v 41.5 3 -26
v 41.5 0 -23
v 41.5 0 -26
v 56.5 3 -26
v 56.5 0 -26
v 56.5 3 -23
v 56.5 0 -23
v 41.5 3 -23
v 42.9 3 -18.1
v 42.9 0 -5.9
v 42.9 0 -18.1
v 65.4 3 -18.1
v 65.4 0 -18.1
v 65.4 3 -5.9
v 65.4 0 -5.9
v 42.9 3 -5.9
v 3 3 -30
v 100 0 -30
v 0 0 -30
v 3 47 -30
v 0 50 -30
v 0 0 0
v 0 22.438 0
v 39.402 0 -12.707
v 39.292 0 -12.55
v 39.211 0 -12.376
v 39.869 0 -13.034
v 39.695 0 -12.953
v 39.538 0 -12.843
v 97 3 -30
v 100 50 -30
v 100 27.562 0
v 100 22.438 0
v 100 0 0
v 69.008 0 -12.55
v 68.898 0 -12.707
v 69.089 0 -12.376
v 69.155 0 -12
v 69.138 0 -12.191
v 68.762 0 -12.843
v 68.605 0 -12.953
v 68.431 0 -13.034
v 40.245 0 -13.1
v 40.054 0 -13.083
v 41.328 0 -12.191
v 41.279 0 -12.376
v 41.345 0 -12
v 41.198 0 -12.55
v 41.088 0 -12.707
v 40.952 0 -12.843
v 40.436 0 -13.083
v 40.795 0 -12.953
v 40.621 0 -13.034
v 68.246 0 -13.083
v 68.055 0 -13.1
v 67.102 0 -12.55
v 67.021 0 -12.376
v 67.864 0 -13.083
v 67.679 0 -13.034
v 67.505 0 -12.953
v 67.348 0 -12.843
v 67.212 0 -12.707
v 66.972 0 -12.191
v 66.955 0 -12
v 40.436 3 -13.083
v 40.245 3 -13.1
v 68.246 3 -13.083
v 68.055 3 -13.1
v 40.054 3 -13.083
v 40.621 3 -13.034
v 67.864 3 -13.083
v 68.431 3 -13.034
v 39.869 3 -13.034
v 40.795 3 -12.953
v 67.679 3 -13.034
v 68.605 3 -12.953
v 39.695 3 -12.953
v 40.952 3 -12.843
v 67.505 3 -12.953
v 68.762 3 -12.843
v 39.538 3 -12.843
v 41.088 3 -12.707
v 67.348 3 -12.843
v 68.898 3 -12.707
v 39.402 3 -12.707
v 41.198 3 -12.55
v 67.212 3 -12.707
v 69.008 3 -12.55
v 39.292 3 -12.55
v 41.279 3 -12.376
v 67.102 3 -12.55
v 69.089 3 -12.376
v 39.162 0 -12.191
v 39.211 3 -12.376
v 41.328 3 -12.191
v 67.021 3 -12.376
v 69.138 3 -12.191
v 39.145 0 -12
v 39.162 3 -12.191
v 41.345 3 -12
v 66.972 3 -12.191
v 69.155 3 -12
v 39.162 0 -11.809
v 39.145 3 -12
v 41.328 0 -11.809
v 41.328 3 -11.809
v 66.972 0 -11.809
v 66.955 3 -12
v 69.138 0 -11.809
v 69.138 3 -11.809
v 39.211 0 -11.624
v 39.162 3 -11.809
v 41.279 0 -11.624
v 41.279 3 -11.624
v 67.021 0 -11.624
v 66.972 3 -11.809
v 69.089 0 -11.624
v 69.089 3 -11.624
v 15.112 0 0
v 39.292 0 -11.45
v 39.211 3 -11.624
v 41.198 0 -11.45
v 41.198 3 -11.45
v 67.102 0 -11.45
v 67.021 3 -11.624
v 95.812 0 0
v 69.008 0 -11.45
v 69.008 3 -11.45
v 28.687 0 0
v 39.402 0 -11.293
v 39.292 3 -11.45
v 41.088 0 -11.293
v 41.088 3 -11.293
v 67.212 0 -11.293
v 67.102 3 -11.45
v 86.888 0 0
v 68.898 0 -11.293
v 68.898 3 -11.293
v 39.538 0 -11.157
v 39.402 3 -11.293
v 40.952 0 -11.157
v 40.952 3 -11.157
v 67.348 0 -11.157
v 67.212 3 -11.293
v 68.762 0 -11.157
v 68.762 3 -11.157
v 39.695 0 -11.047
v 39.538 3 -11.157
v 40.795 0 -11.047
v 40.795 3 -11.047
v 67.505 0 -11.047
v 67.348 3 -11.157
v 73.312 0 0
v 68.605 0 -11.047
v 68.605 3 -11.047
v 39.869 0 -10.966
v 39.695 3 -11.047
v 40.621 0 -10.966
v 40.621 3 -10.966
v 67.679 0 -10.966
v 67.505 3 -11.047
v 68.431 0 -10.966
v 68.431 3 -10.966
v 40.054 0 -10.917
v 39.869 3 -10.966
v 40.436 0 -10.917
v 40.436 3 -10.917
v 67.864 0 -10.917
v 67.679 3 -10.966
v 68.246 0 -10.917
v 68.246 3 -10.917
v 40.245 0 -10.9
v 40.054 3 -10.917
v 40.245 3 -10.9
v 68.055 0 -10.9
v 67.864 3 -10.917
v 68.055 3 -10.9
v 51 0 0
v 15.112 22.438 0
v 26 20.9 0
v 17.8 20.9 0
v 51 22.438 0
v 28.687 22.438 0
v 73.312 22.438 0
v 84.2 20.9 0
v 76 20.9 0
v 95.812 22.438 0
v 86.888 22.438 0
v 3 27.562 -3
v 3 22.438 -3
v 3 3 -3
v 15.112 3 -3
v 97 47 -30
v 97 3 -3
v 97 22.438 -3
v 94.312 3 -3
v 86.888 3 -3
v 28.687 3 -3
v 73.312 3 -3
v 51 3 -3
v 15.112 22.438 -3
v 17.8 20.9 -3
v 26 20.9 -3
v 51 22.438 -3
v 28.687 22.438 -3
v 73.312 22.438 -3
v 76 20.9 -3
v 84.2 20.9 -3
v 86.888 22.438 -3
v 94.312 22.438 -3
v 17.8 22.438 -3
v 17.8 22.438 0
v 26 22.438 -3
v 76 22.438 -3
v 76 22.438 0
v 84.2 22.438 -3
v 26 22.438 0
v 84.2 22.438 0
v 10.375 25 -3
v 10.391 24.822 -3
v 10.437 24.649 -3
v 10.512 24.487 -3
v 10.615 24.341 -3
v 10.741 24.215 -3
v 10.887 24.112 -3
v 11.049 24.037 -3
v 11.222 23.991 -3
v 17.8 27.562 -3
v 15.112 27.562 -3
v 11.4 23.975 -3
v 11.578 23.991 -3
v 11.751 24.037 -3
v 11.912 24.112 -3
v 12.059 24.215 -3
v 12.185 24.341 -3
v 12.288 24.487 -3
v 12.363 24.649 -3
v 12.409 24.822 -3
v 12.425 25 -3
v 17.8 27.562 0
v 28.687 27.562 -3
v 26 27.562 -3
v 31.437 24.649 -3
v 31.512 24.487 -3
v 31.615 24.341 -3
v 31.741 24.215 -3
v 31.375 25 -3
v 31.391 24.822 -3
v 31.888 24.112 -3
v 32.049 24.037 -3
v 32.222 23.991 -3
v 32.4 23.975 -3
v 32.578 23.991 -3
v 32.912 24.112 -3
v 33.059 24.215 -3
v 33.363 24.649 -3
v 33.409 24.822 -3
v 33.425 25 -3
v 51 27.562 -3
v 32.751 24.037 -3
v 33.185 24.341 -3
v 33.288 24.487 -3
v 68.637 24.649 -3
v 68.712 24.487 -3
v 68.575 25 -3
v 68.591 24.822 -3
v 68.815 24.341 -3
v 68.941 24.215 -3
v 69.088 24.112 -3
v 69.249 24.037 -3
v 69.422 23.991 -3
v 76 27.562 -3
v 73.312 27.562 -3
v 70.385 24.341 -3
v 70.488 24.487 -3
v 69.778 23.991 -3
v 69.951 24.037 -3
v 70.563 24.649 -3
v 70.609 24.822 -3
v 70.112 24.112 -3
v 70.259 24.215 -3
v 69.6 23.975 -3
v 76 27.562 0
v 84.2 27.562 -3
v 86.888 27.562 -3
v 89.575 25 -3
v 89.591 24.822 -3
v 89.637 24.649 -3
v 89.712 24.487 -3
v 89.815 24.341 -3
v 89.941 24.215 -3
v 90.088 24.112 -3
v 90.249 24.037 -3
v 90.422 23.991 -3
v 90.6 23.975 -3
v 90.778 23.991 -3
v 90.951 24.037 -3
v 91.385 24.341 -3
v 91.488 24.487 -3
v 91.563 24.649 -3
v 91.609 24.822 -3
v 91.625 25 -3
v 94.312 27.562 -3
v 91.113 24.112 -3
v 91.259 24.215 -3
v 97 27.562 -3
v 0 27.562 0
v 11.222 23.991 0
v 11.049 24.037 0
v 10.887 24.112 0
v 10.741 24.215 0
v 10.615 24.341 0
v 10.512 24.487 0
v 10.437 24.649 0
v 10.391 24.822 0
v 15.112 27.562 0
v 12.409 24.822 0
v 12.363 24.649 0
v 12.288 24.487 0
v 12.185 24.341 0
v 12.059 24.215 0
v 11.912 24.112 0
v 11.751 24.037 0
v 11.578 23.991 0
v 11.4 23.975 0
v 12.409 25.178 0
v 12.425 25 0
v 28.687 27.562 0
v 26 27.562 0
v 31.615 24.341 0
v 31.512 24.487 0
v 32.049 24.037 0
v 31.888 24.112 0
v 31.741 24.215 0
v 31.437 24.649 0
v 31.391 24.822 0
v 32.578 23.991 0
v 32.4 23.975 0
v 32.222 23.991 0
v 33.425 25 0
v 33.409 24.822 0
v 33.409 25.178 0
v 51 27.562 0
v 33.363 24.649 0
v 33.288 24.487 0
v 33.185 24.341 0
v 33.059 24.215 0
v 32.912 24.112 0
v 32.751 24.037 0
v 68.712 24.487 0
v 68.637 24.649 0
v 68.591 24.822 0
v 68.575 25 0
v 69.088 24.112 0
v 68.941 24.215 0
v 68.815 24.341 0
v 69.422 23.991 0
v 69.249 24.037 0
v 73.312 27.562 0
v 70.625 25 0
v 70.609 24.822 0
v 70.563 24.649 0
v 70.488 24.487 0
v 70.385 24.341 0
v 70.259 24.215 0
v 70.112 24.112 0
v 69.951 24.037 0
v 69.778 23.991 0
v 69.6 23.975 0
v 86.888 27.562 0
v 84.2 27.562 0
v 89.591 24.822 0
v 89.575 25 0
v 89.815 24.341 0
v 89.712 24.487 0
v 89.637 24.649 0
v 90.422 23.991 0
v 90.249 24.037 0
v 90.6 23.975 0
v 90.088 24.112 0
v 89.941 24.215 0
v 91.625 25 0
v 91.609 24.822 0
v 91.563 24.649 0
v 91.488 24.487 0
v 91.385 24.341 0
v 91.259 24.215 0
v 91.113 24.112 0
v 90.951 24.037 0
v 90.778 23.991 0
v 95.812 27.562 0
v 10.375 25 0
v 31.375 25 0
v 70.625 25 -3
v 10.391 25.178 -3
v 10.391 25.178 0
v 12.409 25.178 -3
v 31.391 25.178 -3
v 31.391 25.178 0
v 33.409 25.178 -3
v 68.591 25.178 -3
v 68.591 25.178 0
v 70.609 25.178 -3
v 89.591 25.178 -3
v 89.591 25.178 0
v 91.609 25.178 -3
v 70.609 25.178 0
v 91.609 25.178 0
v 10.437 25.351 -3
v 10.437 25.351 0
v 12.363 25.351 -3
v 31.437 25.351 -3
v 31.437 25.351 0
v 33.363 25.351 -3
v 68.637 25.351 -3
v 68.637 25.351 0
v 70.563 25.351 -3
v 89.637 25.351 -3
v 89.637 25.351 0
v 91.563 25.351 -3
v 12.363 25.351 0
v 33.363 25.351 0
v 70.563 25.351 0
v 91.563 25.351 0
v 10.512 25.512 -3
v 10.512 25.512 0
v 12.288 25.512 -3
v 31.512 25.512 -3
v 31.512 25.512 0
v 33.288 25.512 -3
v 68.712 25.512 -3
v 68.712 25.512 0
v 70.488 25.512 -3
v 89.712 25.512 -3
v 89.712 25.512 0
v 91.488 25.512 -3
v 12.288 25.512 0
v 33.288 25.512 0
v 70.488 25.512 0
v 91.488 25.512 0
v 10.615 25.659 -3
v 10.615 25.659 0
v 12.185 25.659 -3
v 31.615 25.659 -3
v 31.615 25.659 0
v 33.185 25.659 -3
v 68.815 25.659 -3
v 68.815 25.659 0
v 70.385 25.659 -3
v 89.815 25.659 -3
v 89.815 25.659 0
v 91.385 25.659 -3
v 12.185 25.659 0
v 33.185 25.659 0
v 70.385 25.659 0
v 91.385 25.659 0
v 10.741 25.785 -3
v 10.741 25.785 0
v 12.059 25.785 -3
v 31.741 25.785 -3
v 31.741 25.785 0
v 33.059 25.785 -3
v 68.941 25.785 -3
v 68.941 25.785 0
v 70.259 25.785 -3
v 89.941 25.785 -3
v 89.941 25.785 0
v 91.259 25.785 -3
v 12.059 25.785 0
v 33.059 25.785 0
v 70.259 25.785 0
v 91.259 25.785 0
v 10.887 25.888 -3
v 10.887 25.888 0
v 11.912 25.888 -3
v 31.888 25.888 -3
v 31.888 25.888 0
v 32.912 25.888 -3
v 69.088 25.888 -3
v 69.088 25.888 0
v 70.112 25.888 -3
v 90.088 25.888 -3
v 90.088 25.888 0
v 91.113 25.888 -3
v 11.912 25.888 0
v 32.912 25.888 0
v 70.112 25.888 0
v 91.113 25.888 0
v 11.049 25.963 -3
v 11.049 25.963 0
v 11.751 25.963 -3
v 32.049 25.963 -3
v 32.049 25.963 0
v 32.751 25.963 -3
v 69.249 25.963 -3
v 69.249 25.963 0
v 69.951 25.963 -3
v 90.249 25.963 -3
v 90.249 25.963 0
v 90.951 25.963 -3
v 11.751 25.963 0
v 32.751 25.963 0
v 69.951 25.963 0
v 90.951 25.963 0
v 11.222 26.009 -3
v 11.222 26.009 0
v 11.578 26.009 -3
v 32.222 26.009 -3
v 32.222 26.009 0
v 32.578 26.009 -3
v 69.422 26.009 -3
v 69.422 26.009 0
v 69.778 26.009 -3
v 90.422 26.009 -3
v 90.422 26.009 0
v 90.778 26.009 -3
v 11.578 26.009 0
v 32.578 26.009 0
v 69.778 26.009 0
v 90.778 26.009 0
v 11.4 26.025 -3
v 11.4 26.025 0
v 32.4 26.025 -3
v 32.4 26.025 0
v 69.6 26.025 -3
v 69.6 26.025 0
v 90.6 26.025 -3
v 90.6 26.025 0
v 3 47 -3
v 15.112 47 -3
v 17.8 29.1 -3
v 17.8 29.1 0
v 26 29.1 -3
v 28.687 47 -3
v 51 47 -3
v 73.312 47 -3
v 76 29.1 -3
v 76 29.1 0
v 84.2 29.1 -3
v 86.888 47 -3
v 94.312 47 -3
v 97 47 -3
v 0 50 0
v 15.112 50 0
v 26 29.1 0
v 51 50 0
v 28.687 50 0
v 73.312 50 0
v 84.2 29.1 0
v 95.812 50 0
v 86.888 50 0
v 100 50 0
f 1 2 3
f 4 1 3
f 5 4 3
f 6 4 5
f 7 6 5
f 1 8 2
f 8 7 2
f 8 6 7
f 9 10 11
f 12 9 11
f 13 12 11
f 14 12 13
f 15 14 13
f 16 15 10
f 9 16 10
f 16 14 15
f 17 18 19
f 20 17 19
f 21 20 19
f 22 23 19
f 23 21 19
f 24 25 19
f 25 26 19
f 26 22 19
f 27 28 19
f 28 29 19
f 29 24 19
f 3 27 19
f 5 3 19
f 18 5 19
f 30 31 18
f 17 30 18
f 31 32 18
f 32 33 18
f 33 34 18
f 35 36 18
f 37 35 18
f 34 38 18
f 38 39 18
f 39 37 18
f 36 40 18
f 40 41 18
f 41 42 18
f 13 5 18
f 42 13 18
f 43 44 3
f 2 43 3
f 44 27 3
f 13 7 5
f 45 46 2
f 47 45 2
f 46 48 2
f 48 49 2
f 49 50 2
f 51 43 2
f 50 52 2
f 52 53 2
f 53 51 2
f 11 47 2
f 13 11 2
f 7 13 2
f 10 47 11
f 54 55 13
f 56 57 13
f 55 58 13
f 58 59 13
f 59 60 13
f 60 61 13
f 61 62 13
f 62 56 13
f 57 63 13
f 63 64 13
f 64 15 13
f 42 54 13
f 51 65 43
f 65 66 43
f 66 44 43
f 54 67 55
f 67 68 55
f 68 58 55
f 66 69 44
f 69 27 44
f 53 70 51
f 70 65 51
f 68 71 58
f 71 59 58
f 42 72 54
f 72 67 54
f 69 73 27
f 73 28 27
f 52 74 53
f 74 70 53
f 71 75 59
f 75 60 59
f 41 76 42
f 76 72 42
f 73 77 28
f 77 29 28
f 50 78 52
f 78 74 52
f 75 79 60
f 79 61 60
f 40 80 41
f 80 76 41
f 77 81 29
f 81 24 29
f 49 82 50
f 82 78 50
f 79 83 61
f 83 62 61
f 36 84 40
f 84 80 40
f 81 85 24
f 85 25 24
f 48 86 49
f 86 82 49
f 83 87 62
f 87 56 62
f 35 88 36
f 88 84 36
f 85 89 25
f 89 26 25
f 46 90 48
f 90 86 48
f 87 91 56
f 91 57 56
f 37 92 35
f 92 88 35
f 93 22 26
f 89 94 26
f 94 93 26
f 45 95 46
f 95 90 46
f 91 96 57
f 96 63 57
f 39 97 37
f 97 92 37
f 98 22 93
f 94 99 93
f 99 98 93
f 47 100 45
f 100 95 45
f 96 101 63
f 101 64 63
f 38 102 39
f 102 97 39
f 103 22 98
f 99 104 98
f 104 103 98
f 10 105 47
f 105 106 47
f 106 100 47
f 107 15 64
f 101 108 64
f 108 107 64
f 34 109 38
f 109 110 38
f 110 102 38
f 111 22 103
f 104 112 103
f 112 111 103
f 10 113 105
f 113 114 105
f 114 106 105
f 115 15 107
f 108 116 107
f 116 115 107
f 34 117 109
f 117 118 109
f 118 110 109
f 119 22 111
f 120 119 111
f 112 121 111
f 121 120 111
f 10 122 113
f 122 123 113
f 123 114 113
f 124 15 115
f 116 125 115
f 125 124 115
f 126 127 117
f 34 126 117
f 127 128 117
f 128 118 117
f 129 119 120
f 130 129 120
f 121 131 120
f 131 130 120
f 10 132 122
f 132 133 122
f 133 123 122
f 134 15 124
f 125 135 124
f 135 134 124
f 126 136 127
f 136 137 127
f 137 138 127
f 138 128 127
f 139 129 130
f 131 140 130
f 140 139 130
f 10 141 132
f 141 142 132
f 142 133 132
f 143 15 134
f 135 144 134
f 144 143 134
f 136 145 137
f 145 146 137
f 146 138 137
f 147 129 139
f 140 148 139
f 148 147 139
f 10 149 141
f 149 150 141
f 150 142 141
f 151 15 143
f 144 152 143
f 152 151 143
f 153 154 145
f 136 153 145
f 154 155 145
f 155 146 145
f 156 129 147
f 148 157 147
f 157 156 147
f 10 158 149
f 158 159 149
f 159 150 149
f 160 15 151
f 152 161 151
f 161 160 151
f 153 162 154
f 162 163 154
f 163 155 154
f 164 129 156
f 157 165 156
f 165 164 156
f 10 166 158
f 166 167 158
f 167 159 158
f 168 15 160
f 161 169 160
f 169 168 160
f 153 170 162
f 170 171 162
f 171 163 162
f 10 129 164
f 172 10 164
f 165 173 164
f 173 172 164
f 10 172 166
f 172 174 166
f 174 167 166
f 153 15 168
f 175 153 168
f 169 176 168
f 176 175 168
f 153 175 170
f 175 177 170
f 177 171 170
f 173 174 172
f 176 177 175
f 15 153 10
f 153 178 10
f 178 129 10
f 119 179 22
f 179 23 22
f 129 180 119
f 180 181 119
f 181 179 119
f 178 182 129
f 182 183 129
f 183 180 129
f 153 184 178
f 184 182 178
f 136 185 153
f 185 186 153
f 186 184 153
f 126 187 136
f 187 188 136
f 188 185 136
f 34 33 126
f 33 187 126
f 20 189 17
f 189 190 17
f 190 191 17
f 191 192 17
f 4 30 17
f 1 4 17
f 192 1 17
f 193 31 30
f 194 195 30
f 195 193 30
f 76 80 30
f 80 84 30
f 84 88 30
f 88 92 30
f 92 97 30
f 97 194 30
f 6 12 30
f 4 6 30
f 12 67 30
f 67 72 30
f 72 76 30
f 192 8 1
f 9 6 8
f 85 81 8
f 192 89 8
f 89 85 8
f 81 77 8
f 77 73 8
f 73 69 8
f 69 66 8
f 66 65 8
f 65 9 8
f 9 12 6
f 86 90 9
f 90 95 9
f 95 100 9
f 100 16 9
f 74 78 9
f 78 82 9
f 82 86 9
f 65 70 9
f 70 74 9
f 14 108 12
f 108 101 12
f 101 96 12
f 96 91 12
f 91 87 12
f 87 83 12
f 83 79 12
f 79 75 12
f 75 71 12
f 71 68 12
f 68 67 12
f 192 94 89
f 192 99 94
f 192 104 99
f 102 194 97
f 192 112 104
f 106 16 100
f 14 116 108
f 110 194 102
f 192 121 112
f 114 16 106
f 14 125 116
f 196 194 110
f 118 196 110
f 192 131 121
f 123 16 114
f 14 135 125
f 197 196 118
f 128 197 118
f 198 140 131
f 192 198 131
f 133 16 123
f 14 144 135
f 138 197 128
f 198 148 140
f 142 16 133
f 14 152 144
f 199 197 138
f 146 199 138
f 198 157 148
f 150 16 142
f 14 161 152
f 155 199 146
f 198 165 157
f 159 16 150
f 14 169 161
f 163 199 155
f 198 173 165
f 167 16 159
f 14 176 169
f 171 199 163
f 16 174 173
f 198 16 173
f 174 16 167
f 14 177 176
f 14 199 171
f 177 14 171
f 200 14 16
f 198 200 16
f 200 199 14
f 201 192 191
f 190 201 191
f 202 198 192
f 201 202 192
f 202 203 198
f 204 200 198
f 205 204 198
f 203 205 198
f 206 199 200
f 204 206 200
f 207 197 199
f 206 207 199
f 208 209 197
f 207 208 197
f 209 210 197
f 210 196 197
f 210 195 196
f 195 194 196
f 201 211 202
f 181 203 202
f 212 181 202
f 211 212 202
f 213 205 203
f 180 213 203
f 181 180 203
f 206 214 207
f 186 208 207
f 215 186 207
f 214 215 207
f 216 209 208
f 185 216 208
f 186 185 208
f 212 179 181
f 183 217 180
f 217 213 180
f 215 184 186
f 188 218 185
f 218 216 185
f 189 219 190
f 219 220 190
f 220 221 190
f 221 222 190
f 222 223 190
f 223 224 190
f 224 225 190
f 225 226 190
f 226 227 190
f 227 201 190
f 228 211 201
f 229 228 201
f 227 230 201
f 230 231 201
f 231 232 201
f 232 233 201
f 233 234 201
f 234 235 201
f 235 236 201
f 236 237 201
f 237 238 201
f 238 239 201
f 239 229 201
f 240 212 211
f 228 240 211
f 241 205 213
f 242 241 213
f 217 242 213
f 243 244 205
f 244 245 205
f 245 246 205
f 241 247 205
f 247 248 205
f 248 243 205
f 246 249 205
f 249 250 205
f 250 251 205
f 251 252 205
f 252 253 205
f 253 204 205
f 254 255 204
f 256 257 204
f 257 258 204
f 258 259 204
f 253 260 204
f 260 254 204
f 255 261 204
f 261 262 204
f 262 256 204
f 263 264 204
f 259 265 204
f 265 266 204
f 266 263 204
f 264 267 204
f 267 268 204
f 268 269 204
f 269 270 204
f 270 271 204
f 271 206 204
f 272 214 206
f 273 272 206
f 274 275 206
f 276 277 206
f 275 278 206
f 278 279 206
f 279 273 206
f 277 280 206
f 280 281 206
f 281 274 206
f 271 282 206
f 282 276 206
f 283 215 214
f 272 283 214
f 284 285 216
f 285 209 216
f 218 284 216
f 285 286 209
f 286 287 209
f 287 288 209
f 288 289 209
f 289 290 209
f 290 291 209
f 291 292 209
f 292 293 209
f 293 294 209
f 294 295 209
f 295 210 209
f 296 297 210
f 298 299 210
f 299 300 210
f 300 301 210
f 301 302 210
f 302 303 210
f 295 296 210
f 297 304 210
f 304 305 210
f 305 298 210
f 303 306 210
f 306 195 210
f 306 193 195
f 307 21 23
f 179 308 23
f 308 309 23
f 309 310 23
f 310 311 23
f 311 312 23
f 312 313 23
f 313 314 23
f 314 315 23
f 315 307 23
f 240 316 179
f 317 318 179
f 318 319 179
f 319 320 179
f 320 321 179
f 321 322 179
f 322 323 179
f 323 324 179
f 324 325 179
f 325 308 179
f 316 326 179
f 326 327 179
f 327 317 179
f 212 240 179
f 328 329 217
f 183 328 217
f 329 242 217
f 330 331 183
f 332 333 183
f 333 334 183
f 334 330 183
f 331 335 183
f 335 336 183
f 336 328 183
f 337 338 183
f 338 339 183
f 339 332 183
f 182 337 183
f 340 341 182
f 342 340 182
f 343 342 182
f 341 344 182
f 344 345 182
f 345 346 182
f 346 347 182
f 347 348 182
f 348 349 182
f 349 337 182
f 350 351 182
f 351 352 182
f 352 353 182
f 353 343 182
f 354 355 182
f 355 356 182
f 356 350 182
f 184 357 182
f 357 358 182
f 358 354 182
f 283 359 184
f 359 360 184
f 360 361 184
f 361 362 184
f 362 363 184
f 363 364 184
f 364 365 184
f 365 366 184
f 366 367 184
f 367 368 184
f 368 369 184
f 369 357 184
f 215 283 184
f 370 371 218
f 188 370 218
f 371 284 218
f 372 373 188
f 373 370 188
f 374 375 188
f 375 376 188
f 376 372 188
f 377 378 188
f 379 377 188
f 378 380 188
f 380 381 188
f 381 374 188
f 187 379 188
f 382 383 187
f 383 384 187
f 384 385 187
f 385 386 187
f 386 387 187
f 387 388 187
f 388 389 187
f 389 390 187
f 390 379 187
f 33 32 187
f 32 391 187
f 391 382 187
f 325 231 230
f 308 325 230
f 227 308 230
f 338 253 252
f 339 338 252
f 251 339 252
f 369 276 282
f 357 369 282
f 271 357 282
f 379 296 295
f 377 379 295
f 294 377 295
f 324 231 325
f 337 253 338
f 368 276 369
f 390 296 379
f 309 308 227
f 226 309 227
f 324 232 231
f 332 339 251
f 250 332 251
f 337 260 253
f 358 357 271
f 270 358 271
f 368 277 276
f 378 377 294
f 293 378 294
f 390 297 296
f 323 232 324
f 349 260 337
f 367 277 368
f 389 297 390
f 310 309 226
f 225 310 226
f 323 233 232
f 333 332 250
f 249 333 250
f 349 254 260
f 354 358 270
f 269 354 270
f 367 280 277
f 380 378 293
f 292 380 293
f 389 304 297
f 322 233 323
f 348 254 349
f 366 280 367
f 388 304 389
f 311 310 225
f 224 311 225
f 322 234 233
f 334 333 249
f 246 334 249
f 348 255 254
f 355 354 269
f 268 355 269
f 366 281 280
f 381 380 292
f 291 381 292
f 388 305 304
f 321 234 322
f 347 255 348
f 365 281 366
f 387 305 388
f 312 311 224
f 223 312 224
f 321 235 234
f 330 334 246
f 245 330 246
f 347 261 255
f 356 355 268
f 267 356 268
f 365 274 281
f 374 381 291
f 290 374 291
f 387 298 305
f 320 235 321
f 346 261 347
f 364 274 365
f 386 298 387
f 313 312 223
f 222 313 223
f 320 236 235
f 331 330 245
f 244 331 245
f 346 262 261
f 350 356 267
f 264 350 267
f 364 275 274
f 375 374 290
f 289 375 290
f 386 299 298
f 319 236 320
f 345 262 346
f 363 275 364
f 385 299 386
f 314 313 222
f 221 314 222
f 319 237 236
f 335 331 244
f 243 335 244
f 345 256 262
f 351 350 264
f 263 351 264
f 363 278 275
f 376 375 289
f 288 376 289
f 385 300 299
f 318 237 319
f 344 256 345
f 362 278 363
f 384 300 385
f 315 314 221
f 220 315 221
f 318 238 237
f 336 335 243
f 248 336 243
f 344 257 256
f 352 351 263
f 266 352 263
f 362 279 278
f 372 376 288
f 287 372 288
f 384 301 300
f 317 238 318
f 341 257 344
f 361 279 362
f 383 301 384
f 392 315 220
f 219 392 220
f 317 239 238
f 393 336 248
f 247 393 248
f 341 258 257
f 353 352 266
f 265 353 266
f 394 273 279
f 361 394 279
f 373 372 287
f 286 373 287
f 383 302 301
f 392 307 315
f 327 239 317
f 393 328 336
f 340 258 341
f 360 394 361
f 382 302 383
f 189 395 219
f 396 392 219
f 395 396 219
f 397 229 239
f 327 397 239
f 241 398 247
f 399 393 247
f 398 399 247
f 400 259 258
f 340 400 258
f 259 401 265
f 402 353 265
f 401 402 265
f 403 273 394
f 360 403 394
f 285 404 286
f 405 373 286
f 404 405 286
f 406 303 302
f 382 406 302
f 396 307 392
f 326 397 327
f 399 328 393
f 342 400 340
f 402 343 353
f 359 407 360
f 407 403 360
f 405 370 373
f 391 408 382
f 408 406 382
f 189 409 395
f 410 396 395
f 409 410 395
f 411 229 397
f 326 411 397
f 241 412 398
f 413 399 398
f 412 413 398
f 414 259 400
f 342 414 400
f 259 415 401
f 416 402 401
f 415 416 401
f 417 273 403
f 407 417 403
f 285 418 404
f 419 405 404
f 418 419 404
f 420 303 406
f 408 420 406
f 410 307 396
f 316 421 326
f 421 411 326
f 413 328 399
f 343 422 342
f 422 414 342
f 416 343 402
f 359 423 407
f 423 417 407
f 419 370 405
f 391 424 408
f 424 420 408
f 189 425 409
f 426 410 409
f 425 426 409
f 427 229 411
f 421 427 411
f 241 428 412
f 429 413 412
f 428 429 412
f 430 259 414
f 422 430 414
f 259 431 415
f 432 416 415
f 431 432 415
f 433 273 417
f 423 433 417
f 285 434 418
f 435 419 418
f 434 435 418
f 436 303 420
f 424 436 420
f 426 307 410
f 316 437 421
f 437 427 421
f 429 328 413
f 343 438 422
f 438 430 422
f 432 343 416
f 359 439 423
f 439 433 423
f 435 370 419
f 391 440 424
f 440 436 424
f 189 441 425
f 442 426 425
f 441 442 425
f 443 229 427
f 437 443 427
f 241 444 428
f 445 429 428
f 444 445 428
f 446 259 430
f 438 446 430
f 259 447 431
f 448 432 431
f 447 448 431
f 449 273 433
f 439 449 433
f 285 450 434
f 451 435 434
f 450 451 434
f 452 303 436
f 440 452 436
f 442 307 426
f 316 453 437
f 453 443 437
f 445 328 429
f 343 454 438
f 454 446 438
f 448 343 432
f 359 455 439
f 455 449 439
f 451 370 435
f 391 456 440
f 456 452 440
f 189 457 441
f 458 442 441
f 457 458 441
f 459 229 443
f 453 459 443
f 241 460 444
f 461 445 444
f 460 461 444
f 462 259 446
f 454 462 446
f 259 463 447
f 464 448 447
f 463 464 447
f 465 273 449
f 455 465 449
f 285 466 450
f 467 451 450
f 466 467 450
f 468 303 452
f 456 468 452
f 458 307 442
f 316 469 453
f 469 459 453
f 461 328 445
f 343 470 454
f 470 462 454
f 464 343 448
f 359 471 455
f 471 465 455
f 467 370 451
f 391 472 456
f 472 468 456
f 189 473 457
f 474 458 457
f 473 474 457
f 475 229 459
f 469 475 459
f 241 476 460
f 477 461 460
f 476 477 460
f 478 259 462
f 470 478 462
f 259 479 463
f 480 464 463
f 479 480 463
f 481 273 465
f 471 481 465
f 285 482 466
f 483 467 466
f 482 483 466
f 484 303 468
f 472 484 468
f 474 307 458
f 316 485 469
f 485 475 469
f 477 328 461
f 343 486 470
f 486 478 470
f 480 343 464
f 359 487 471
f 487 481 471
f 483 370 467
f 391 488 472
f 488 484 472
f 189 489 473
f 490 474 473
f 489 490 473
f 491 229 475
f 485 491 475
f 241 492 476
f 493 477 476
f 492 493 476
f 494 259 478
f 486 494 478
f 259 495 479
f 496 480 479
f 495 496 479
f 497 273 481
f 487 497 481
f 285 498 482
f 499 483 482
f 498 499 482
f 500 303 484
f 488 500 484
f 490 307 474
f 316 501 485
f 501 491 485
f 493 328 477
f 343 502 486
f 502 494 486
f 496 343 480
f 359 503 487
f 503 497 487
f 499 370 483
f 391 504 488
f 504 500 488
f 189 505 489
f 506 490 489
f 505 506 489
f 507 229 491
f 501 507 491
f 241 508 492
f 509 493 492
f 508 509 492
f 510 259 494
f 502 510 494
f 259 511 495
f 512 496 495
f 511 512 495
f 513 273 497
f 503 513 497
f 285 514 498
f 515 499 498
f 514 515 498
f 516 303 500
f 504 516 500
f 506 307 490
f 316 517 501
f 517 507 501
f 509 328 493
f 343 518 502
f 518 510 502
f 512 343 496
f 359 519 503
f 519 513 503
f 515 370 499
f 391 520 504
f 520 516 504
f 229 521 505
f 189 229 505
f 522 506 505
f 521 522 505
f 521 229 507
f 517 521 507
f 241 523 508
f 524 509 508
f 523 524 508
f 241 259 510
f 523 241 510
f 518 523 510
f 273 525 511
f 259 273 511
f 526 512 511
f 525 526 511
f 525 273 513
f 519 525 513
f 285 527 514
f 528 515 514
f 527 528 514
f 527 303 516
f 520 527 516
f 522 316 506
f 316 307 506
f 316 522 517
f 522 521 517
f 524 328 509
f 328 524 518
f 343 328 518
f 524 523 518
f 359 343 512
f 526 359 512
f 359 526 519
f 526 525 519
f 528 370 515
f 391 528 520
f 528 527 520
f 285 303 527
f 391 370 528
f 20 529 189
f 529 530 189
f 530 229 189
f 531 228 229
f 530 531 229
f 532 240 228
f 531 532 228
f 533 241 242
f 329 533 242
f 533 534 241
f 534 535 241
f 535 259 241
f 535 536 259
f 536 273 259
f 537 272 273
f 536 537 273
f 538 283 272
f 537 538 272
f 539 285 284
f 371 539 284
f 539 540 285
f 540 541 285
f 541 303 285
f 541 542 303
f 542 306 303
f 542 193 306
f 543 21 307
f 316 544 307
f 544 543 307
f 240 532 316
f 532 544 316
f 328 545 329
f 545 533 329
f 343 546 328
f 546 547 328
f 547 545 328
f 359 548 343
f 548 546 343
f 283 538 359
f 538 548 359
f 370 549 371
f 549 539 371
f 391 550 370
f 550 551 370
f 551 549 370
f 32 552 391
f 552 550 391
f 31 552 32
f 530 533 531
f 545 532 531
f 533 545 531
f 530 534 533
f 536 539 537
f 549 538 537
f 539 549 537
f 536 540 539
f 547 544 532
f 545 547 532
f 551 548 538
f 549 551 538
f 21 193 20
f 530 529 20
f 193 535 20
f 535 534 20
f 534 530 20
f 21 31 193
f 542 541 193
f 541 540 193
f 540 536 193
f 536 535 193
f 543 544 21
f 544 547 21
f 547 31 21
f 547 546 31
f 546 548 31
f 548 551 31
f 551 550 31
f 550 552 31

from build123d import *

# Parameters (mm, degrees)
SKETCH1_W                      = 100
SKETCH1_H                      = 30
BOSS_EXTRUDE1_DEPTH            = 50
SHELL1_T                       = -3
CUT_EXTRUDE1_REACH             = 116.495
SKETCH2_W                      = 22.5
SKETCH2_H                      = 12.2
F_2_2_2_2_DIAMETER_HOLE1_D     = 2.2
F_2_2_2_2_DIAMETER_HOLE1_DEPTH = 3
CUT_EXTRUDE2_REACH             = 116.495
SKETCH5_W                      = 15
SKETCH5_H                      = 3
CUT_EXTRUDE3_REACH             = 117.758
SKETCH6_W                      = 8.2
SKETCH6_H                      = 8.2
F_2_05_2_05_DIAMETER_HOLE1_D   = 2.05


with BuildPart() as part:
    # Sketch1 → Boss-Extrude1 (new body)
    with BuildSketch(Plane(origin=(0, 0, 0), x_dir=(1, 0, 0), z_dir=(0, 1, 0))):
        with Locations((50, 15)):
            Rectangle(SKETCH1_W, SKETCH1_H)
    extrude(amount=BOSS_EXTRUDE1_DEPTH)

    # Shell1
    shell1_openings = [part.faces().sort_by_distance(p)[0] for p in [
        (50, 25, -30),
    ]]
    offset(amount=SHELL1_T, openings=shell1_openings, kind=Kind.INTERSECTION)

    # Sketch2 → Cut-Extrude1 (cut, up to next)
    with BuildSketch(Plane(origin=(0, 3, 0), x_dir=(1, 0, 0), z_dir=(0, 1, 0)), mode=Mode.PRIVATE) as cut_extrude1_sk1:
        with Locations((54.15, 12)):
            Rectangle(SKETCH2_W, SKETCH2_H)
    cut_extrude1_tool1 = extrude(cut_extrude1_sk1.sketch, amount=-CUT_EXTRUDE1_REACH, mode=Mode.PRIVATE) & part.part
    add(cut_extrude1_tool1.solids().sort_by_distance((54.15, 3, -12))[0], mode=Mode.SUBTRACT)

    # Ø2.2 (2.2) Diameter Hole1
    with Locations(Plane(origin=(0, 3, 0), x_dir=(1, 0, 0), z_dir=(0, 1, 0))):
        with Locations((68.055, 12), (40.245, 12)):
            Hole(F_2_2_2_2_DIAMETER_HOLE1_D / 2, depth=F_2_2_2_2_DIAMETER_HOLE1_DEPTH)

    # Sketch5 → Cut-Extrude2 (cut, up to next)
    with BuildSketch(Plane(origin=(0, 3, 0), x_dir=(1, 0, 0), z_dir=(0, 1, 0)), mode=Mode.PRIVATE) as cut_extrude2_sk1:
        with Locations((49, 24.5)):
            Rectangle(SKETCH5_W, SKETCH5_H)
    cut_extrude2_tool1 = extrude(cut_extrude2_sk1.sketch, amount=-CUT_EXTRUDE2_REACH, mode=Mode.PRIVATE) & part.part
    add(cut_extrude2_tool1.solids().sort_by_distance((49, 3, -24.5))[0], mode=Mode.SUBTRACT)

    # Sketch6 → Cut-Extrude3 (cut, up to next)
    with BuildSketch(Plane.XY, mode=Mode.PRIVATE) as cut_extrude3_sk1:
        with Locations((80.1, 25)):
            Rectangle(SKETCH6_W, SKETCH6_H)
    cut_extrude3_tool1 = extrude(cut_extrude3_sk1.sketch, amount=-CUT_EXTRUDE3_REACH, mode=Mode.PRIVATE) & part.part
    # Sketch6 → Cut-Extrude3 (cut, up to next)
    with BuildSketch(Plane.XY, mode=Mode.PRIVATE) as cut_extrude3_sk2:
        with Locations((21.9, 25)):
            Rectangle(SKETCH6_W, SKETCH6_H)
    cut_extrude3_tool2 = extrude(cut_extrude3_sk2.sketch, amount=-CUT_EXTRUDE3_REACH, mode=Mode.PRIVATE) & part.part
    add(cut_extrude3_tool1.solids().sort_by_distance((80.1, 25, 0))[0], mode=Mode.SUBTRACT)
    add(cut_extrude3_tool2.solids().sort_by_distance((21.9, 25, 0))[0], mode=Mode.SUBTRACT)

    # Ø2.05 (2.05) Diameter Hole1 (through all)
    with Locations(Plane(origin=(0, 0, -3), x_dir=(-1, 0, 0), z_dir=(0, 0, -1))):
        with Locations((-90.6, 25), (-69.6, 25), (-32.4, 25), (-11.4, 25)):
            Hole(F_2_05_2_05_DIAMETER_HOLE1_D / 2)


solid = part.part
